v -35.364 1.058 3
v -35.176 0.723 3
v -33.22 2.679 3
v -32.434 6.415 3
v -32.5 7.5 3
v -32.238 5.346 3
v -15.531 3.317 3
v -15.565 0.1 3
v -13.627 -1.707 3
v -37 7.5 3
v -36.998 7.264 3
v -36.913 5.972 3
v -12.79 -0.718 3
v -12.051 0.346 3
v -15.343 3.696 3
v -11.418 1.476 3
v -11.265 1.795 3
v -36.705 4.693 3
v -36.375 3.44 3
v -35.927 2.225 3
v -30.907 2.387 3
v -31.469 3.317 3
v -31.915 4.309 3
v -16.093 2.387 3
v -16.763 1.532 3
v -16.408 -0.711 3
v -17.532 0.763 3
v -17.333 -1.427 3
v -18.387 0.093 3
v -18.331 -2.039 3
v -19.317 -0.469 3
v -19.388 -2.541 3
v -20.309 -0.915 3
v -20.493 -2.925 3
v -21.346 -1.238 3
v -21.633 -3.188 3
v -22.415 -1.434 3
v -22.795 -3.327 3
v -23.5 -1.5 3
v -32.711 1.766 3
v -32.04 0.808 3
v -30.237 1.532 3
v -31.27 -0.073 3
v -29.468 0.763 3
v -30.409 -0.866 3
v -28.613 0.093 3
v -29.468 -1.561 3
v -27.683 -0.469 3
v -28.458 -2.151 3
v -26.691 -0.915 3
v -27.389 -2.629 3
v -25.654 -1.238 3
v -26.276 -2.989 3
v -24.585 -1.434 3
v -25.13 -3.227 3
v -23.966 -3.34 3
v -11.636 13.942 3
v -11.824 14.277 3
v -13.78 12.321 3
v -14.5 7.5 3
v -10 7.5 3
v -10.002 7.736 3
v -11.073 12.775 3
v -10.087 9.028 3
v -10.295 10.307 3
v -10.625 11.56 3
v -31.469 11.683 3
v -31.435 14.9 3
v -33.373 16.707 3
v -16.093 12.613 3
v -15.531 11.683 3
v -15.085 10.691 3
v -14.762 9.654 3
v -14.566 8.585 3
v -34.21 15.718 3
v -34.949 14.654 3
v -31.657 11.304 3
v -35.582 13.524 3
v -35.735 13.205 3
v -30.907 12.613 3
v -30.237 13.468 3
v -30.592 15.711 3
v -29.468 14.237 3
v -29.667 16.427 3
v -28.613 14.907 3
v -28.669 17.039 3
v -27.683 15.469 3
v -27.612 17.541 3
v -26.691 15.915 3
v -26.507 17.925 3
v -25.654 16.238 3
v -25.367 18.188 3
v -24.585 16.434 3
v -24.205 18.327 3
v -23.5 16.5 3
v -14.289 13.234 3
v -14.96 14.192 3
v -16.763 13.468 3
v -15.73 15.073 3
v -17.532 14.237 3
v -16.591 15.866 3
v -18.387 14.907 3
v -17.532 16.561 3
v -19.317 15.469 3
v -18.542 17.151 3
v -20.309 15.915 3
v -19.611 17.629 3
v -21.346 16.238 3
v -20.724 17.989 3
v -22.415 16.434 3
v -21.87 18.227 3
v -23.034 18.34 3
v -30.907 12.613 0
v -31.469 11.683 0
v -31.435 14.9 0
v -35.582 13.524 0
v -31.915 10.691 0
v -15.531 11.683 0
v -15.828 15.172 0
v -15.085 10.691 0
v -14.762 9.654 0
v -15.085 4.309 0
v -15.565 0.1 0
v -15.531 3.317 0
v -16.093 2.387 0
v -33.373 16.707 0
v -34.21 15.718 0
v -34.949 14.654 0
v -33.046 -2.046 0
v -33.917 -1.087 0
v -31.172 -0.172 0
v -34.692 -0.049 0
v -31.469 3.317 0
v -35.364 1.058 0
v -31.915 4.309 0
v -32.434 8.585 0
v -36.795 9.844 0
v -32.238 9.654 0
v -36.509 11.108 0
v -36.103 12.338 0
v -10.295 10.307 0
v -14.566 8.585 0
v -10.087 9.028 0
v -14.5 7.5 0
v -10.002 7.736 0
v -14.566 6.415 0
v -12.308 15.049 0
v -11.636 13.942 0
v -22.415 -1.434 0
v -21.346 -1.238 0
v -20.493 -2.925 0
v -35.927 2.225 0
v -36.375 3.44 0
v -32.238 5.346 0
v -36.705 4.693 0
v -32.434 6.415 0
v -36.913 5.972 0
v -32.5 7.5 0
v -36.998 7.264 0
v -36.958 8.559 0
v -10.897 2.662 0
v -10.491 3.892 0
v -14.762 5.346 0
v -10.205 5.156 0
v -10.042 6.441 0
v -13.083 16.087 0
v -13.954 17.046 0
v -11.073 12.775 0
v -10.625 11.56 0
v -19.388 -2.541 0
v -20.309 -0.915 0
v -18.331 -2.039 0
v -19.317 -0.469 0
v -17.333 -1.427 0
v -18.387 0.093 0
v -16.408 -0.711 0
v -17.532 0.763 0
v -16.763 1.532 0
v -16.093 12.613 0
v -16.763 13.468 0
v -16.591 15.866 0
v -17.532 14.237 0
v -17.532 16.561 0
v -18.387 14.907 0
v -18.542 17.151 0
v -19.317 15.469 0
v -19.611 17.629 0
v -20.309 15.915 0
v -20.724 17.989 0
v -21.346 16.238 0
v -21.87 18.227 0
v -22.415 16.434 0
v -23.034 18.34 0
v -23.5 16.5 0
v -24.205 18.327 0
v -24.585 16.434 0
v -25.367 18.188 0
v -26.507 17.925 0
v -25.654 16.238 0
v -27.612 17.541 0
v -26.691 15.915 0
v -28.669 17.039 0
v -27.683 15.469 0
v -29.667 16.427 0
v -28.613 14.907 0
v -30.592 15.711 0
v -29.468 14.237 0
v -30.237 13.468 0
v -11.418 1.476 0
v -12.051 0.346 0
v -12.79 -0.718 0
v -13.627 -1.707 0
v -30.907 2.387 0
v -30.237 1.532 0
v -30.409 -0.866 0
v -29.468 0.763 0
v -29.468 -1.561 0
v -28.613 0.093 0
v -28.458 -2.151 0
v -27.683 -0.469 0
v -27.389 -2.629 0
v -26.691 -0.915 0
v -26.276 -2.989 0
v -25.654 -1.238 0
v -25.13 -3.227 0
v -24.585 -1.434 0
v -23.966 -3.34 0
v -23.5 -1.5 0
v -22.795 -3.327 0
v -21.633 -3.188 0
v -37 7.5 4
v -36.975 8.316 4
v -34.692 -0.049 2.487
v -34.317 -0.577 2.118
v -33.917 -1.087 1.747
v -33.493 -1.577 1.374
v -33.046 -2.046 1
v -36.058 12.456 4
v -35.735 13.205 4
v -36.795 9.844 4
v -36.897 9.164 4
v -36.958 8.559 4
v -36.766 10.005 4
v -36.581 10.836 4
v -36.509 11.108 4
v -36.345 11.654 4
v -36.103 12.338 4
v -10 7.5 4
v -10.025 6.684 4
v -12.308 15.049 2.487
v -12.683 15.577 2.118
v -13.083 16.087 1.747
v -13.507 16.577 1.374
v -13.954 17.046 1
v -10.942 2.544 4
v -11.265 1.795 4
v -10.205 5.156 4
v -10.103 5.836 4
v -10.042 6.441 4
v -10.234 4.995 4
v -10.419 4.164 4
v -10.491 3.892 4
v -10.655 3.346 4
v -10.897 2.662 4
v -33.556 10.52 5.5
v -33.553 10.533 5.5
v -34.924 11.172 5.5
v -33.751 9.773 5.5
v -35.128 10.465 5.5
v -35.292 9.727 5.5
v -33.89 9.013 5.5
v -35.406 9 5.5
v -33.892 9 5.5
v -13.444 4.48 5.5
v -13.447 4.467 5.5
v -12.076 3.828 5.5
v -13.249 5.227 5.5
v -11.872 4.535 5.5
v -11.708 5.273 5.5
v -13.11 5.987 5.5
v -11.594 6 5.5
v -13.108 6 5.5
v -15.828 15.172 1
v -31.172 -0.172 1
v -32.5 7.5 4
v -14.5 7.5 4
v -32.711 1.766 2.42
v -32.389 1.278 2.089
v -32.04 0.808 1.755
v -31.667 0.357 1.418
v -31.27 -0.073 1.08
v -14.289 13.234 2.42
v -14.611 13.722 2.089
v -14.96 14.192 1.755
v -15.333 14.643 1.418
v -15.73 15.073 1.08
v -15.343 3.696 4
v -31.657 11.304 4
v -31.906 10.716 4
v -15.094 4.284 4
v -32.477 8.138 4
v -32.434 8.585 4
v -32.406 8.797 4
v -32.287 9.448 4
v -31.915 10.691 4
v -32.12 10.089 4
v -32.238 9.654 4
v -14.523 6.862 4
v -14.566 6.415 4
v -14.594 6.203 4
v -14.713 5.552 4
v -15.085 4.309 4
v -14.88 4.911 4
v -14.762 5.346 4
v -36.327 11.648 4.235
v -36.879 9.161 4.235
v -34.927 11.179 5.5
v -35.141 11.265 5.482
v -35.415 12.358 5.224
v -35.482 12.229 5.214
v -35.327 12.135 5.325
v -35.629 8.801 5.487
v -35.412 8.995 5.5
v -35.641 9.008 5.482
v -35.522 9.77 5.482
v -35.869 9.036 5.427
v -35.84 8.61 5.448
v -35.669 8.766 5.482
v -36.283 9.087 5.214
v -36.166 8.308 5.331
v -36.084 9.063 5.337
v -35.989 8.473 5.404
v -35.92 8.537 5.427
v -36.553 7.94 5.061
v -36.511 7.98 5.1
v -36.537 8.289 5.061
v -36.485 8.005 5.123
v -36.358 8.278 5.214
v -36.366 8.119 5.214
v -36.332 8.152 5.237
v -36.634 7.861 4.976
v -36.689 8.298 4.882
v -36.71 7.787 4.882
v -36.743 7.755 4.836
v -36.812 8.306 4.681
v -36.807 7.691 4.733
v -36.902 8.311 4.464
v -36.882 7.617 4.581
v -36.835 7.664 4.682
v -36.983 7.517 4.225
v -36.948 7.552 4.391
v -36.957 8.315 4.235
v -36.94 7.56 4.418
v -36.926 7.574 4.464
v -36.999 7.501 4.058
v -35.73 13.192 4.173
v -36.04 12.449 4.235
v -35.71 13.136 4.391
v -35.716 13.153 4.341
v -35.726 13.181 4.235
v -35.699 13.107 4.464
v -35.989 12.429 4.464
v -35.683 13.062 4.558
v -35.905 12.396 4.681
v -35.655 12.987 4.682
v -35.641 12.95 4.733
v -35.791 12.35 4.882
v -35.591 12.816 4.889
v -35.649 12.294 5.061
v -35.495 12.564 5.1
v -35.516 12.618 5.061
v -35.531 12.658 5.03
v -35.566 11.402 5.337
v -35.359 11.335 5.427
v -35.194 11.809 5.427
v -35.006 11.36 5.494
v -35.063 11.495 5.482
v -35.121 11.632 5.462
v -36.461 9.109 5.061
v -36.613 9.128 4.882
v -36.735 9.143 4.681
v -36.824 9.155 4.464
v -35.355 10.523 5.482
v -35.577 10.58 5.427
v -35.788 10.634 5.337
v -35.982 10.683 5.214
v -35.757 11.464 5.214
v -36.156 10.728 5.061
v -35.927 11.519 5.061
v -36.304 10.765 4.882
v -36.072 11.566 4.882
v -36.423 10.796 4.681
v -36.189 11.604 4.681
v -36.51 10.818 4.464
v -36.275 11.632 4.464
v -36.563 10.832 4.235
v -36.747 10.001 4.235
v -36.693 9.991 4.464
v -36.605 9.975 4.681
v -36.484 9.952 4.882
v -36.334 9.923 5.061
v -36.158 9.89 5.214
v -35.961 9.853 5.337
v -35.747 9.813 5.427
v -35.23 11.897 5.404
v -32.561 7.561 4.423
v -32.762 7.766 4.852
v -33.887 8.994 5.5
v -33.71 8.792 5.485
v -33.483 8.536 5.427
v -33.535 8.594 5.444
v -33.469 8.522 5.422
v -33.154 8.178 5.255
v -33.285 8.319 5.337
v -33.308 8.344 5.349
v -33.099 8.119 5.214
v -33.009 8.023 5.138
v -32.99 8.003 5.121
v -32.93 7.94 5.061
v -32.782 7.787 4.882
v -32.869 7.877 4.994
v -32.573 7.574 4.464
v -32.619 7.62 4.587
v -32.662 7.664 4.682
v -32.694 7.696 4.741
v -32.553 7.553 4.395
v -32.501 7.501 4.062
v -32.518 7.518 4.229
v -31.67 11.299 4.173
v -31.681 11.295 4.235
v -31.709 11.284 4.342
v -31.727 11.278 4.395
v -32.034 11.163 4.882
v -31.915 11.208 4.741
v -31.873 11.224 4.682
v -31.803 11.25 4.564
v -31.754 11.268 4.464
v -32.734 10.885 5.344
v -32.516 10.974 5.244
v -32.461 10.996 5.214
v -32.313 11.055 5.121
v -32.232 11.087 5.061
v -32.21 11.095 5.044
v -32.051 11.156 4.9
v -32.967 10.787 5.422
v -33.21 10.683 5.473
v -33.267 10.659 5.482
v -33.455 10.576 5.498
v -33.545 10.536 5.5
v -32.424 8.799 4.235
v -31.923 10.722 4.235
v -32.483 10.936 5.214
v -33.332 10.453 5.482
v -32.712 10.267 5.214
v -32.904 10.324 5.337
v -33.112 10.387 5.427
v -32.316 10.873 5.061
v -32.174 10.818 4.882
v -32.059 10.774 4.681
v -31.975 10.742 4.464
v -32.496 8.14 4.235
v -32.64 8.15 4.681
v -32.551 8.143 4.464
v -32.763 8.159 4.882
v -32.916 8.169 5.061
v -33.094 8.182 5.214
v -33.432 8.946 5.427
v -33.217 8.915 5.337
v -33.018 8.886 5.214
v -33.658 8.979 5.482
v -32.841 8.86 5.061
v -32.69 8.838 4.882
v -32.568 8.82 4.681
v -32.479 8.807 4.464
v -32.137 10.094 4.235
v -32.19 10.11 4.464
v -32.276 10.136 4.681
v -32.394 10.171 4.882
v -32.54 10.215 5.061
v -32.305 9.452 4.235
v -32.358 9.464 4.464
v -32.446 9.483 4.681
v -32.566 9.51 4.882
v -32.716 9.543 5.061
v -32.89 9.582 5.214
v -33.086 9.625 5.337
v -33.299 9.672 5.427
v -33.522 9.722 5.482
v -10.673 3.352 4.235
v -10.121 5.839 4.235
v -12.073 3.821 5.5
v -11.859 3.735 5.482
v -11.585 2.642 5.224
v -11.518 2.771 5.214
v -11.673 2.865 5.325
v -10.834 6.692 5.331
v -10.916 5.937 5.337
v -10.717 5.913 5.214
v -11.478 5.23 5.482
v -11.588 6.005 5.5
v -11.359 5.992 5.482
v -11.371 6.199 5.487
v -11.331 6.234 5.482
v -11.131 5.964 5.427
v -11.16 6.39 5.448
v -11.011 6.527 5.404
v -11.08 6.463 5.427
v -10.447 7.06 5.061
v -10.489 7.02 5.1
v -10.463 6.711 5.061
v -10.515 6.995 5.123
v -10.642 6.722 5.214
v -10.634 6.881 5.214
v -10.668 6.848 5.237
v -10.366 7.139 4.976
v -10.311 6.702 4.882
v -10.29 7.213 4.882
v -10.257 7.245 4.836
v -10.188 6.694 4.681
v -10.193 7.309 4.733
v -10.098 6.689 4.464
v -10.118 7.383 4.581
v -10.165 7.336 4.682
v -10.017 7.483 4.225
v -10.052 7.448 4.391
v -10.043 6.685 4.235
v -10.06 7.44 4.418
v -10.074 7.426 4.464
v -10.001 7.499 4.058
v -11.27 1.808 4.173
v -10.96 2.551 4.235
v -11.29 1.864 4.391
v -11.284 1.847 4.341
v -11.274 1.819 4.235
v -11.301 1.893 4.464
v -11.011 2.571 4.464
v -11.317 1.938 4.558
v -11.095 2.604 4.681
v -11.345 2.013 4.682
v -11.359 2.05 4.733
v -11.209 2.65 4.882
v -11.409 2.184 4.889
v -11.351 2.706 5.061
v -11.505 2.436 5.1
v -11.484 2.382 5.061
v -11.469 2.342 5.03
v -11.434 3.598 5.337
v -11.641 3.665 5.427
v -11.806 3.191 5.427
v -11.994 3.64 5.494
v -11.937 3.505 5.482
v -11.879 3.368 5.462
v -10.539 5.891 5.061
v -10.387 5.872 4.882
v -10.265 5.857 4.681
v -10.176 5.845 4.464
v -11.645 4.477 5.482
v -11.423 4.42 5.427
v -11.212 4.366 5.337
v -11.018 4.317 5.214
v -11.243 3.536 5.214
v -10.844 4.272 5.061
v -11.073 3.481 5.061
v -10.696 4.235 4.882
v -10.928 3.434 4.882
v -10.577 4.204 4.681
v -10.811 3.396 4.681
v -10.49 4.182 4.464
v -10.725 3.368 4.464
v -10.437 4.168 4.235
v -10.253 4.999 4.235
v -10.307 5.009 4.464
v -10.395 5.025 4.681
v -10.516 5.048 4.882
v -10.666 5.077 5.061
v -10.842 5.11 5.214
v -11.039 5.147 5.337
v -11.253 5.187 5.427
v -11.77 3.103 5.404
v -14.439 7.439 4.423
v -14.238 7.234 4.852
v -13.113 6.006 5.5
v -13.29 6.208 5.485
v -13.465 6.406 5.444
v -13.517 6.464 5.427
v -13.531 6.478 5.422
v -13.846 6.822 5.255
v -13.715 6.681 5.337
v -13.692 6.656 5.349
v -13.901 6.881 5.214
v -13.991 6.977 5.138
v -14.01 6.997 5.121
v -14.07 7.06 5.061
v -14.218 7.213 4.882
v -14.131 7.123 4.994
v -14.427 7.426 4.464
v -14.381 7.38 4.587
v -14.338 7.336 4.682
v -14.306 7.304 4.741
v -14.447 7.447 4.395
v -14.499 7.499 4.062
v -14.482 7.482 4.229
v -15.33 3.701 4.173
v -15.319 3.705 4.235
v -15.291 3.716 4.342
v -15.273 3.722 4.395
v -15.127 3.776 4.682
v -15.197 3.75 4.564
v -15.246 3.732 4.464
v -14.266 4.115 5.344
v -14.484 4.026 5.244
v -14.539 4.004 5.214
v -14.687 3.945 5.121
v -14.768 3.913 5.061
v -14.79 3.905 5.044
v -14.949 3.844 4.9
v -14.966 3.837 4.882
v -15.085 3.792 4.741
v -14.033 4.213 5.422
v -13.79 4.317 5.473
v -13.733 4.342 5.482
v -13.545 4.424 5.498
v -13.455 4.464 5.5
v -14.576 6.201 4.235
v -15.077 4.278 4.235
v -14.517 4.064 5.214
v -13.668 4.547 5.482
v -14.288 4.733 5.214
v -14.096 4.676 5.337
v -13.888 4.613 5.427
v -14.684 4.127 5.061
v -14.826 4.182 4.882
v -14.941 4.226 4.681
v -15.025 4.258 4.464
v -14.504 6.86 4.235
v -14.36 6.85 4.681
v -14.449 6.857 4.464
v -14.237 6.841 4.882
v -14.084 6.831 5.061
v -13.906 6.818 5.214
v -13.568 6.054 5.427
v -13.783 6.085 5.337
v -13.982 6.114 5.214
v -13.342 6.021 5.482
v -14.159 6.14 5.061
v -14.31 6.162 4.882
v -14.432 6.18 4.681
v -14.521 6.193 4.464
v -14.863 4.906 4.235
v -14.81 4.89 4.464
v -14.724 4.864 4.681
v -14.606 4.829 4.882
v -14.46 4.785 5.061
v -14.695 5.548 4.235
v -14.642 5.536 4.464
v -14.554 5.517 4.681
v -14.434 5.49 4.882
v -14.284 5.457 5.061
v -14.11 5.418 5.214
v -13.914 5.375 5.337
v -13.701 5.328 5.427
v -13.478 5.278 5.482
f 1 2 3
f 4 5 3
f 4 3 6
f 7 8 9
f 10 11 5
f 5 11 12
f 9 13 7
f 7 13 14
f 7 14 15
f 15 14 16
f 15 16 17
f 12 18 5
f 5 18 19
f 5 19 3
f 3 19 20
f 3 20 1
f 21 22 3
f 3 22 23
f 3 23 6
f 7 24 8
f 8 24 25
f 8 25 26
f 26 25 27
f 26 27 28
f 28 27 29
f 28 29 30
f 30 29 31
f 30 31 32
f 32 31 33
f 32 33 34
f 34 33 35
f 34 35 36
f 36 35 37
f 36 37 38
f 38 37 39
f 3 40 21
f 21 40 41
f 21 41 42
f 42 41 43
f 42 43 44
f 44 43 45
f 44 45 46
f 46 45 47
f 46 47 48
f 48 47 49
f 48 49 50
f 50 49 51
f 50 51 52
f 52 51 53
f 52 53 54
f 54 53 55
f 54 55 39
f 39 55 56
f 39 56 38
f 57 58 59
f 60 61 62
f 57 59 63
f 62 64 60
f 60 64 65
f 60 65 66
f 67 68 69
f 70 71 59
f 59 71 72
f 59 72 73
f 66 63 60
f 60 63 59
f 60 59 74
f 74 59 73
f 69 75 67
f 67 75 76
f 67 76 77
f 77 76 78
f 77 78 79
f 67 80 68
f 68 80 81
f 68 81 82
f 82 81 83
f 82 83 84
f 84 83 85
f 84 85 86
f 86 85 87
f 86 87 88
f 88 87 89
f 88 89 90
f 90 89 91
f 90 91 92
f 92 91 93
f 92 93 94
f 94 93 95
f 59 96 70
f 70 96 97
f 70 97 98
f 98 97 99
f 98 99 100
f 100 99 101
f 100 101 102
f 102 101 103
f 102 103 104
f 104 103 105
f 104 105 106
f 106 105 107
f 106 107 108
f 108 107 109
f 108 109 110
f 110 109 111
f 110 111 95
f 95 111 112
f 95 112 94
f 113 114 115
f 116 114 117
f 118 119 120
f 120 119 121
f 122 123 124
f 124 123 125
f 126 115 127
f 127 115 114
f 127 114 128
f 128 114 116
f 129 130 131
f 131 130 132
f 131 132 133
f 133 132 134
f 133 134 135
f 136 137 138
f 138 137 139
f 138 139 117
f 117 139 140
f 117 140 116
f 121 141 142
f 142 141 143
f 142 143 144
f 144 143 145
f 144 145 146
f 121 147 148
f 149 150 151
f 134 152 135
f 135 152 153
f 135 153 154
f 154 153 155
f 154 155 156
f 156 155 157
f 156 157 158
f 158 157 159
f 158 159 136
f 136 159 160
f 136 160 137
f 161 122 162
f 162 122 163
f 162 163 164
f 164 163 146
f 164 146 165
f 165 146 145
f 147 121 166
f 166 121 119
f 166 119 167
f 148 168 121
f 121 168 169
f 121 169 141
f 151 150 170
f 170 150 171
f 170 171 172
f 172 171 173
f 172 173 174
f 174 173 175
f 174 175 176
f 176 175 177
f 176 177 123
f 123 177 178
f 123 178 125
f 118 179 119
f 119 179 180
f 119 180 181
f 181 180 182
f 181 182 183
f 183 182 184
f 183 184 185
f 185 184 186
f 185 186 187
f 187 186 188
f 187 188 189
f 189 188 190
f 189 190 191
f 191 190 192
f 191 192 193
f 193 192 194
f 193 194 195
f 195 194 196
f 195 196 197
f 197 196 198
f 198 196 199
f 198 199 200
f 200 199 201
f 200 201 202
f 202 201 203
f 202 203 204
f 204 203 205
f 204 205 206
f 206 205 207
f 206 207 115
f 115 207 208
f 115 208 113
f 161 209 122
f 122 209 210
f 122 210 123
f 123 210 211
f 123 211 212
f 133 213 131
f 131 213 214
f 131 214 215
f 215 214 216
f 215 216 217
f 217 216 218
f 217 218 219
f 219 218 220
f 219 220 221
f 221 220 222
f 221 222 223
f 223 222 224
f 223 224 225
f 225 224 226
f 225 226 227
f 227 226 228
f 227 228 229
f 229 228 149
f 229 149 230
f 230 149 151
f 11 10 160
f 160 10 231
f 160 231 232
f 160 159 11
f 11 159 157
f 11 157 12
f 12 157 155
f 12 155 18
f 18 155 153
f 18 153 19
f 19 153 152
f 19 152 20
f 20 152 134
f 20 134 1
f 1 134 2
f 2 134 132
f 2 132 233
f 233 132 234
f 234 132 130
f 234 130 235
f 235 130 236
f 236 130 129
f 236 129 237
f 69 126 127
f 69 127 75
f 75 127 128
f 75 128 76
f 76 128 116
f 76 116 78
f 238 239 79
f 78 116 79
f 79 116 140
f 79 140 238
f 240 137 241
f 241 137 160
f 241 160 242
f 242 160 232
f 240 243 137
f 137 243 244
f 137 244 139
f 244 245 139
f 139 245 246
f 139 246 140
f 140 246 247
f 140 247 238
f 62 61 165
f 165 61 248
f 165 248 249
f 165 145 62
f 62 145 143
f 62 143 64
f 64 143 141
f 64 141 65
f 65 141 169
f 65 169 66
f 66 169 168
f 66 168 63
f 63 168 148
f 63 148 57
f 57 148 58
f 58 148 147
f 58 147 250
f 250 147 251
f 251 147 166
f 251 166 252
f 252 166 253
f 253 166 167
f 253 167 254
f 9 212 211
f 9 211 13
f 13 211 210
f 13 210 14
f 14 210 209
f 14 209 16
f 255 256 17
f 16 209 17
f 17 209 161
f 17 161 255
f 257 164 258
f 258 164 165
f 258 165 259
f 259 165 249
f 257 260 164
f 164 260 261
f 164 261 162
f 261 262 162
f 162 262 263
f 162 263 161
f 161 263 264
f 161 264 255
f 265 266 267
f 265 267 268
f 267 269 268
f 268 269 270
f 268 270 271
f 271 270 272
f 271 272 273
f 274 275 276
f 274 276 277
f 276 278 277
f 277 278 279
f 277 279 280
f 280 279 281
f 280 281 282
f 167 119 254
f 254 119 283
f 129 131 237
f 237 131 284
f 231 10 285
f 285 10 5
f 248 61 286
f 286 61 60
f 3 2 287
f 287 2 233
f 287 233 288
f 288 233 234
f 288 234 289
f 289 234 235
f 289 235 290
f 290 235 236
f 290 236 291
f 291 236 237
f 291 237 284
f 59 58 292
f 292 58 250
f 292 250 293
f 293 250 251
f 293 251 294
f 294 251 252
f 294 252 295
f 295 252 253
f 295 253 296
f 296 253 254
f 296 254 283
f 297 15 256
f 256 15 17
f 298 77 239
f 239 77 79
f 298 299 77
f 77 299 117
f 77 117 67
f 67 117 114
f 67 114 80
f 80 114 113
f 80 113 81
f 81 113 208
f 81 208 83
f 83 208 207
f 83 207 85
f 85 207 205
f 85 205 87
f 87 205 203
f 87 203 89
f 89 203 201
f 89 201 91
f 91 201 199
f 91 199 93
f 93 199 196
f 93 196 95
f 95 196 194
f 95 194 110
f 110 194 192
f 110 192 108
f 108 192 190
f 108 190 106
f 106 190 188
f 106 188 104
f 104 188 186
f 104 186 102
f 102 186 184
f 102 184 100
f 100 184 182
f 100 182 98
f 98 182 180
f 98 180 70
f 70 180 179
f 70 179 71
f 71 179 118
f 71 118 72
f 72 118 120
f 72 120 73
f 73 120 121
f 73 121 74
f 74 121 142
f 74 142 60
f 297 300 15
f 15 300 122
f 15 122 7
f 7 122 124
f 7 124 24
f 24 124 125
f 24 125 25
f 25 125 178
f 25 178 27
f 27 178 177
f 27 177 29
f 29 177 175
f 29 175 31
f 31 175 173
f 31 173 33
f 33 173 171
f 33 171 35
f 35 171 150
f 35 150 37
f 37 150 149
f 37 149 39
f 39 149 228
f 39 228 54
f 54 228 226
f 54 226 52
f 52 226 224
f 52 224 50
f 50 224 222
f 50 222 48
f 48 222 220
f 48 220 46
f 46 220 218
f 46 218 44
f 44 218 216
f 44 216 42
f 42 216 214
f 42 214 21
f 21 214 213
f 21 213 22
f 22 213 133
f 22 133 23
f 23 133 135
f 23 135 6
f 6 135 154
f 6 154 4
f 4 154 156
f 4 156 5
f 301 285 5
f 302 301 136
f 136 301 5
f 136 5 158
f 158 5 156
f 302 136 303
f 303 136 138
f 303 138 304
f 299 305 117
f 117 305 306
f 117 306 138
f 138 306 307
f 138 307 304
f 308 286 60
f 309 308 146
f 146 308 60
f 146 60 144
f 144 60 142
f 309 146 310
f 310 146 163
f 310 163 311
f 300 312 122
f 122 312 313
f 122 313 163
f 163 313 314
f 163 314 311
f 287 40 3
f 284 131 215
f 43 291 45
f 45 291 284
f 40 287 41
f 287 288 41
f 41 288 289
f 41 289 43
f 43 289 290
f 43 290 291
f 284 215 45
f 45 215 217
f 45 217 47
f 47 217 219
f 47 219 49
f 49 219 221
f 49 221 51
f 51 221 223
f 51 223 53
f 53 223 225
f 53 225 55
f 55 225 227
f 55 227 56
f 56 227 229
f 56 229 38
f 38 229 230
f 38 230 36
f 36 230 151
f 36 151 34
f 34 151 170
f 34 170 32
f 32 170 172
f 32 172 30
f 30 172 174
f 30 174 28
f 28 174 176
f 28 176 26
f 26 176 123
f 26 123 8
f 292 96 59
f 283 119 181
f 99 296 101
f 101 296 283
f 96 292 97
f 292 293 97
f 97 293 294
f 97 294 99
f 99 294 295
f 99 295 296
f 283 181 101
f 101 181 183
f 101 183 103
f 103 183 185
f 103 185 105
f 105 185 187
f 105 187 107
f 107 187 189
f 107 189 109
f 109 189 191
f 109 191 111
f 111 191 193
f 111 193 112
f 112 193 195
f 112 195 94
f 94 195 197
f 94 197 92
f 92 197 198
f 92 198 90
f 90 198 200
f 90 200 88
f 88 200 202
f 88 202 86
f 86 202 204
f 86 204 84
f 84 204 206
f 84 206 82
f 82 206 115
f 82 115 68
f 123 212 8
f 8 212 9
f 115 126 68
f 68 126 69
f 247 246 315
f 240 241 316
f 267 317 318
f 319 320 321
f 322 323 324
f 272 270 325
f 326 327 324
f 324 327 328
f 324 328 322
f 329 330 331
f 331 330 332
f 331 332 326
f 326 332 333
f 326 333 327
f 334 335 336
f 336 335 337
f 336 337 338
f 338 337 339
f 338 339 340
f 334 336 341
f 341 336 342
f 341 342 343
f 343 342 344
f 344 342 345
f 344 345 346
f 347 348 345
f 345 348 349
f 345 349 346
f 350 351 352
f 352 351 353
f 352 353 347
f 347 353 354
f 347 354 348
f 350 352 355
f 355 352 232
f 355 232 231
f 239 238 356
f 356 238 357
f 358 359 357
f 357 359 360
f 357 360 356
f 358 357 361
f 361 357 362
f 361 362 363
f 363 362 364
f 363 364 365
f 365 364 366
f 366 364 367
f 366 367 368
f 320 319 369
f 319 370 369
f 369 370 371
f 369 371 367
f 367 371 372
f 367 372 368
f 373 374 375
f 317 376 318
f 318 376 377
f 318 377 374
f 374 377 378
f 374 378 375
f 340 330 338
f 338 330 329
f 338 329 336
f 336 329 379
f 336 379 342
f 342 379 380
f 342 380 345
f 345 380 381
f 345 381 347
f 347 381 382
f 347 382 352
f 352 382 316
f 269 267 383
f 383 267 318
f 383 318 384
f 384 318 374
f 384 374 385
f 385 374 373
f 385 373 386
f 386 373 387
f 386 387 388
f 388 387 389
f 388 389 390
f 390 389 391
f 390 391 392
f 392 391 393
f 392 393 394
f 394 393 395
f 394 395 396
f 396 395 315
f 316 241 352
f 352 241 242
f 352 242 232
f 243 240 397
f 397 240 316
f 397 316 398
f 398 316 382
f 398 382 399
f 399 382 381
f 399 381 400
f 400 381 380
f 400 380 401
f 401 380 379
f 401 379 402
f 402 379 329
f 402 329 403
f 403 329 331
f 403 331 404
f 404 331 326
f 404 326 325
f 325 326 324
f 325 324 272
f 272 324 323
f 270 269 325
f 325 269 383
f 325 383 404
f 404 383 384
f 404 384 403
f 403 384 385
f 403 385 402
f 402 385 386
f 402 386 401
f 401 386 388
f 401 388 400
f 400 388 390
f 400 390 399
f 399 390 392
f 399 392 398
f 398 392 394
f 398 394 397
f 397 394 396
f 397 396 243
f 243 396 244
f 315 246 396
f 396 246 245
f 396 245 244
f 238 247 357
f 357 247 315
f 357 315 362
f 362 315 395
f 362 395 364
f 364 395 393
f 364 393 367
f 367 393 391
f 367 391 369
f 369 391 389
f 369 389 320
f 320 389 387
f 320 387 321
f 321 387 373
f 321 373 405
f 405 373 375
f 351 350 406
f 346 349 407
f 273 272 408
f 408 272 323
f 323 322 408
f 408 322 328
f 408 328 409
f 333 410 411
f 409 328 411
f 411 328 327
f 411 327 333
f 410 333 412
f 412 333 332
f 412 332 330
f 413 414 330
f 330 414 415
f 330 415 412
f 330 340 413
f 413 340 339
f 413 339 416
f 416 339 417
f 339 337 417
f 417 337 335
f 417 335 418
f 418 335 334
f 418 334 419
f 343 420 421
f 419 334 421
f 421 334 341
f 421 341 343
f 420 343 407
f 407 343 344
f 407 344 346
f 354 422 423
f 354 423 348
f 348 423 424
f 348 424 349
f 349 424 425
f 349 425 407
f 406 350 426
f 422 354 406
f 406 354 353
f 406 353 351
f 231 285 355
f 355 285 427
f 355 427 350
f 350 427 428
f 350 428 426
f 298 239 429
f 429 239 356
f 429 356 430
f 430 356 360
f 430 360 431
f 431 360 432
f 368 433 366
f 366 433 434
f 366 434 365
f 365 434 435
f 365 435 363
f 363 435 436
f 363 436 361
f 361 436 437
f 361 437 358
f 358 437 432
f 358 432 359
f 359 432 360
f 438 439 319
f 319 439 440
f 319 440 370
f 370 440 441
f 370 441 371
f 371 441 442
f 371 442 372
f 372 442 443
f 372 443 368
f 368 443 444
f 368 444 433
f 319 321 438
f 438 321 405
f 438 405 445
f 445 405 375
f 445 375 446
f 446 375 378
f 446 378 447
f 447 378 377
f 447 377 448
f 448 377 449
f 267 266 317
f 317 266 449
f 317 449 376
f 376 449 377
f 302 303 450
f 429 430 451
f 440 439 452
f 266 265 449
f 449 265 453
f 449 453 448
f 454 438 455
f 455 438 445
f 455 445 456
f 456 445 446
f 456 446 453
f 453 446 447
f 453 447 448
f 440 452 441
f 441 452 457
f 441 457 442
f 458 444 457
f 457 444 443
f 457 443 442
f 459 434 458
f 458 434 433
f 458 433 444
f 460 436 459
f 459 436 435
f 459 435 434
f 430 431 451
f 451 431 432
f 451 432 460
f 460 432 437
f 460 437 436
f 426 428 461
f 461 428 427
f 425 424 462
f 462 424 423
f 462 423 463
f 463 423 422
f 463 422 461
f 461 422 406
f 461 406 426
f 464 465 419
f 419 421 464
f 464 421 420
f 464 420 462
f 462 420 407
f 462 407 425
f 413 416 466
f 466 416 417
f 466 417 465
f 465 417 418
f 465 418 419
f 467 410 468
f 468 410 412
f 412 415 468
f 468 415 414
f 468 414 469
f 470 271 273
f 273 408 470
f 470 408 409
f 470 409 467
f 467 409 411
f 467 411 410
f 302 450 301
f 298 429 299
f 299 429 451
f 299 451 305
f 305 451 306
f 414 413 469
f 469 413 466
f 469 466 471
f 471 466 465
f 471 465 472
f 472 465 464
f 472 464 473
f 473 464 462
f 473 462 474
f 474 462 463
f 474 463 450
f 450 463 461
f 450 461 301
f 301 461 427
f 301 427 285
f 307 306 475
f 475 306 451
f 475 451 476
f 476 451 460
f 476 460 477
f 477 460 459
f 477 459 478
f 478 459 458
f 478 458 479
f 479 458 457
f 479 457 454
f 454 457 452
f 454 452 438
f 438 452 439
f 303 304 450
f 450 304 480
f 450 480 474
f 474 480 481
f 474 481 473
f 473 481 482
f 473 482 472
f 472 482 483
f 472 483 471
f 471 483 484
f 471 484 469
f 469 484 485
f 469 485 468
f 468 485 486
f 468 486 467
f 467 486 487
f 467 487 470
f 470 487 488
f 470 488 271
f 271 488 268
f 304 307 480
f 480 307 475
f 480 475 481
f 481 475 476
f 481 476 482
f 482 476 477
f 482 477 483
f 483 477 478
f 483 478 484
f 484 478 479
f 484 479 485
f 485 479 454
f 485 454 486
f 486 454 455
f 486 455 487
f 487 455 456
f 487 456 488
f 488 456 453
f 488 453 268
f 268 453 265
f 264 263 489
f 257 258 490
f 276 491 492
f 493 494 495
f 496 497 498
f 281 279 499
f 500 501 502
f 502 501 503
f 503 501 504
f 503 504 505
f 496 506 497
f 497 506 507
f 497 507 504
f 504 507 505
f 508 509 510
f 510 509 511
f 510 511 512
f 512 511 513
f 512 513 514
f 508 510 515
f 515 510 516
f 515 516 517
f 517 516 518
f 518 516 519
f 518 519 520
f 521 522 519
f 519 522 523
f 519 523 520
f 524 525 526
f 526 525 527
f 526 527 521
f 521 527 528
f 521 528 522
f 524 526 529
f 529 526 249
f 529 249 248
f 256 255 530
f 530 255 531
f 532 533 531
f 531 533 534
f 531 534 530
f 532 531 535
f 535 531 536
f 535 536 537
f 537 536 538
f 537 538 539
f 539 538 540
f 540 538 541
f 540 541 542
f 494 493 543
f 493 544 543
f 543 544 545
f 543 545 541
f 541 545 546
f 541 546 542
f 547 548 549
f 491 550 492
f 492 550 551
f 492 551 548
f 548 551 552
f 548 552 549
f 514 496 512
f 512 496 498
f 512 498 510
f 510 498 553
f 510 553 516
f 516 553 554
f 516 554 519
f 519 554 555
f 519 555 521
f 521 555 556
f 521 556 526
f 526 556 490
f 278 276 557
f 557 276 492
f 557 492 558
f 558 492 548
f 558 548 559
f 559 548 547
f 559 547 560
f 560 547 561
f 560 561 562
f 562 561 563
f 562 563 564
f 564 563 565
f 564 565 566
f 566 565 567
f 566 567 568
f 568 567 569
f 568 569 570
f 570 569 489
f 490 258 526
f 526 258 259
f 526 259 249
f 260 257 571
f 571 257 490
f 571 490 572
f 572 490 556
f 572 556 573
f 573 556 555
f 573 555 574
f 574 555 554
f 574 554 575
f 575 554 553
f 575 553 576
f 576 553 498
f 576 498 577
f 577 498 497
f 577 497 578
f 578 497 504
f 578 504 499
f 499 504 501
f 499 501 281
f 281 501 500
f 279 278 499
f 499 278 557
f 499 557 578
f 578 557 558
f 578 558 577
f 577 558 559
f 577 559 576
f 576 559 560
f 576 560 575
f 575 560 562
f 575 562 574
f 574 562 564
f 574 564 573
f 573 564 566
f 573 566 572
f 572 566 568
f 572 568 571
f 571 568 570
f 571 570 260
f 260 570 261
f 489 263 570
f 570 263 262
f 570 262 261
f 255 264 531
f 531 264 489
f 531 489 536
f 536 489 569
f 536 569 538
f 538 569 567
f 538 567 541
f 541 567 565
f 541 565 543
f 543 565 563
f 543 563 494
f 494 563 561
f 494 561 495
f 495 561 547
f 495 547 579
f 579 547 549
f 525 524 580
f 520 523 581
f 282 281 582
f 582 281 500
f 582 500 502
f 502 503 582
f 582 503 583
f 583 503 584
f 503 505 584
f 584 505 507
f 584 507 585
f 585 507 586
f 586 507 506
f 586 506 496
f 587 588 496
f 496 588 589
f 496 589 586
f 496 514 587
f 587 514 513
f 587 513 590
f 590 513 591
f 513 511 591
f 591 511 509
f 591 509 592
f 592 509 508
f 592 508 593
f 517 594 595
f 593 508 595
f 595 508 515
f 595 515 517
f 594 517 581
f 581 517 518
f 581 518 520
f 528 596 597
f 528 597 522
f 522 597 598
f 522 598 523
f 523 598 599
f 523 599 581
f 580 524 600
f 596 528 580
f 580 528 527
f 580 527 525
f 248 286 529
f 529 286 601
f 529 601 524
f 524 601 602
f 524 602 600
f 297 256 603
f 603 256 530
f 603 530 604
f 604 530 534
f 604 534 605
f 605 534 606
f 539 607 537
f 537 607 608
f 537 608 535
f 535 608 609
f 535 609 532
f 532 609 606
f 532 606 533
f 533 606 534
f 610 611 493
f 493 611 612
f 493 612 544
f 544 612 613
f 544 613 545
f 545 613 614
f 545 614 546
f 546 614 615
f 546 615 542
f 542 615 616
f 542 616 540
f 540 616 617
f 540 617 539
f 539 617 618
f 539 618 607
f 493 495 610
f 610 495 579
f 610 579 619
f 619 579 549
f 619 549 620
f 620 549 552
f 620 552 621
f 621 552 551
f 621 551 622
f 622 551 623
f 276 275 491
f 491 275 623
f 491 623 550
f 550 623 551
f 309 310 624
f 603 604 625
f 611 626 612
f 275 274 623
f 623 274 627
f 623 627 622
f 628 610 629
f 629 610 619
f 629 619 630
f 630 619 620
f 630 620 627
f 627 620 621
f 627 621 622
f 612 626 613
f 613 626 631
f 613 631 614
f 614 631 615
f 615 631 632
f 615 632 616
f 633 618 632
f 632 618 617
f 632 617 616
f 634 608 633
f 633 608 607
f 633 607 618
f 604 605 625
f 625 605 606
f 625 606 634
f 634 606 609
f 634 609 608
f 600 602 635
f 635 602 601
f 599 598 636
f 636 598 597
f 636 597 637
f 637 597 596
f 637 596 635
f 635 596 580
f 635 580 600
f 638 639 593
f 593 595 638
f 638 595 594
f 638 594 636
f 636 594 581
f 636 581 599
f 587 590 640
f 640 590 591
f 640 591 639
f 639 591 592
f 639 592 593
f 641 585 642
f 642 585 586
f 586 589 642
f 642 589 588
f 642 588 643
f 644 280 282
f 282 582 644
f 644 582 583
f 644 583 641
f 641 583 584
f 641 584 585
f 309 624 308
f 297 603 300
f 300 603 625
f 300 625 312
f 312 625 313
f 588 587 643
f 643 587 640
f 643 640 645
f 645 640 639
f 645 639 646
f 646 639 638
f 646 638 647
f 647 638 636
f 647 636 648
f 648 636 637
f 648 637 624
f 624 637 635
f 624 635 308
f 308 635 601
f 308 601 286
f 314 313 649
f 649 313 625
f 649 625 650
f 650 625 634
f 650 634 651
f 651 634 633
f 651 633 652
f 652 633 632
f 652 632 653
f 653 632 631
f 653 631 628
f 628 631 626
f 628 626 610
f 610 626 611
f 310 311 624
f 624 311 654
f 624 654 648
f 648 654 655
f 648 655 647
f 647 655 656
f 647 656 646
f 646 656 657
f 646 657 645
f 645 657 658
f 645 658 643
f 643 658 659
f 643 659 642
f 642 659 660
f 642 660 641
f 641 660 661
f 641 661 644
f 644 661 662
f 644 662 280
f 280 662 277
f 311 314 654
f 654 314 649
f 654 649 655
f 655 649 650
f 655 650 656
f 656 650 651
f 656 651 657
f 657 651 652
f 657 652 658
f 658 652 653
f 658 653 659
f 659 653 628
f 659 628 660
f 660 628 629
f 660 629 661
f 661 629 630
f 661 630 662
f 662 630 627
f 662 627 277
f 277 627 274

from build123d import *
from build123d.topology import SkipClean

# Parameters (mm, degrees)
BOSS_EXTRUDE1_DEPTH     = 3
BOSS_EXTRUDE2_DEPTH     = 2.5
CHAMFER1_SIZE           = 2
CHAMFER1_SIZE2          = 3.464101615
CHAMFER2_SIZE           = 2
CHAMFER2_SIZE2          = 3.464101615
CUT_EXTRUDE1_START      = -2.5
CUT_EXTRUDE1_DEPTH      = 2.5
CUT_EXTRUDE2_DEPTH      = 42.632739521
CUT_EXTRUDE2_DEPTH_BACK = 42.632739521
SKETCH4_R               = 17.222950649
SKETCH4_R_2             = 13.5
CUT_EXTRUDE3_DEPTH      = 42.409207913
CUT_EXTRUDE3_DEPTH_BACK = 42.409207913
FILLET1_R               = 1.5


with BuildPart() as part:
    # Sketch1 → Boss-Extrude1 (new body)
    with BuildSketch(Plane.XY):
        with BuildLine():
            Line((-33.222718241, -2.222718241), (-31.172108576, -0.172108576))
            ThreePointArc((-31.172108576, -0.172108576), (-34.35, 7.5), (-31.172108576, 15.172108576))
            Line((-31.172108576, 15.172108576), (-33.222718241, 17.222718241))
            ThreePointArc((-33.222718241, 17.222718241), (-37.25, 7.5), (-33.222718241, -2.222718241))
        make_face()
        with BuildLine():
            Line((-31.172108576, -0.172108576), (-29.863961031, 1.136038969))
            ThreePointArc((-29.863961031, 1.136038969), (-32.5, 7.5), (-29.863961031, 13.863961031))
            Line((-29.863961031, 13.863961031), (-31.172108576, 15.172108576))
            ThreePointArc((-31.172108576, 15.172108576), (-34.35, 7.5), (-31.172108576, -0.172108576))
        make_face()
        with BuildLine():
            ThreePointArc((-29.863961031, 13.863961031), (-26.944150891, 15.814915793), (-23.5, 16.5))
            Line((-23.5, 16.5), (-23.5, 18.35))
            ThreePointArc((-23.5, 18.35), (-27.652115241, 17.524092928), (-31.172108576, 15.172108576))
            Line((-31.172108576, 15.172108576), (-29.863961031, 13.863961031))
        make_face()
        with BuildLine():
            Line((-23.5, 18.35), (-23.5, 16.5))
            ThreePointArc((-23.5, 16.5), (-20.055849109, 15.814915793), (-17.136038969, 13.863961031))
            Line((-17.136038969, 13.863961031), (-15.827891424, 15.172108576))
            ThreePointArc((-15.827891424, 15.172108576), (-19.347884759, 17.524092928), (-23.5, 18.35))
        make_face()
        with BuildLine():
            Line((-15.827891424, 15.172108576), (-17.136038969, 13.863961031))
            ThreePointArc((-17.136038969, 13.863961031), (-15.185084207, 10.944150891), (-14.5, 7.5))
            ThreePointArc((-14.5, 7.5), (-15.185084207, 4.055849109), (-17.136038969, 1.136038969))
            Line((-17.136038969, 1.136038969), (-15.827891424, -0.172108576))
            ThreePointArc((-15.827891424, -0.172108576), (-13.475907072, 3.347884759), (-12.65, 7.5))
            ThreePointArc((-12.65, 7.5), (-13.475907072, 11.652115241), (-15.827891424, 15.172108576))
        make_face()
        with BuildLine():
            ThreePointArc((-17.136038969, 1.136038969), (-20.055849109, -0.814915793), (-23.5, -1.5))
            Line((-23.5, -1.5), (-23.5, -3.35))
            ThreePointArc((-23.5, -3.35), (-19.347884759, -2.524092928), (-15.827891424, -0.172108576))
            Line((-15.827891424, -0.172108576), (-17.136038969, 1.136038969))
        make_face()
        with BuildLine():
            Line((-23.5, -3.35), (-23.5, -1.5))
            ThreePointArc((-23.5, -1.5), (-26.944150891, -0.814915793), (-29.863961031, 1.136038969))
            Line((-29.863961031, 1.136038969), (-31.172108576, -0.172108576))
            ThreePointArc((-31.172108576, -0.172108576), (-27.652115241, -2.524092928), (-23.5, -3.35))
        make_face()
        with BuildLine():
            Line((-13.777281759, 17.222718241), (-15.827891424, 15.172108576))
            ThreePointArc((-15.827891424, 15.172108576), (-13.475907072, 11.652115241), (-12.65, 7.5))
            ThreePointArc((-12.65, 7.5), (-13.475907072, 3.347884759), (-15.827891424, -0.172108576))
            Line((-15.827891424, -0.172108576), (-13.777281759, -2.222718241))
            ThreePointArc((-13.777281759, -2.222718241), (-10.796656428, 2.238102805), (-9.75, 7.5))
            ThreePointArc((-9.75, 7.5), (-10.796656428, 12.761897195), (-13.777281759, 17.222718241))
        make_face()
    extrude(amount=BOSS_EXTRUDE1_DEPTH)

    # Sketch2 → Boss-Extrude2 (add)
    with BuildSketch(Plane.XY.offset(3)):
        with BuildLine():
            Line((-37.25, 7.5), (-32.5, 7.5))
            ThreePointArc((-32.5, 7.5), (-31.814915793, 10.944150891), (-29.863961031, 13.863961031))
            Line((-29.863961031, 13.863961031), (-31.172108576, 15.172108576))
            Line((-31.172108576, 15.172108576), (-33.222718241, 17.222718241))
            ThreePointArc((-33.222718241, 17.222718241), (-36.203343572, 12.761897195), (-37.25, 7.5))
        make_face()
        with BuildLine():
            Line((-9.75, 7.5), (-14.5, 7.5))
            ThreePointArc((-14.5, 7.5), (-15.185084207, 4.055849109), (-17.136038969, 1.136038969))
            Line((-17.136038969, 1.136038969), (-15.827891424, -0.172108576))
            Line((-15.827891424, -0.172108576), (-13.777281759, -2.222718241))
            ThreePointArc((-13.777281759, -2.222718241), (-10.796656428, 2.238102805), (-9.75, 7.5))
        make_face()
    extrude(amount=BOSS_EXTRUDE2_DEPTH)

    # Chamfer1
    chamfer1_edges = [part.edges().sort_by_distance(p)[0] for p in [
        (-32.197413409, -1.197413409, 3),
    ]]
    chamfer1_side = [part.faces().sort_by_distance(p)[0] for p in [
        (-32.197413409, -1.197413409, 1.5),
    ]]
    chamfer(chamfer1_edges, length=CHAMFER1_SIZE, length2=CHAMFER1_SIZE2, reference=chamfer1_side[0])

    # Chamfer2
    chamfer2_edges = [part.edges().sort_by_distance(p)[0] for p in [
        (-14.802586591, 16.197413409, 3),
    ]]
    chamfer2_side = [part.faces().sort_by_distance(p)[0] for p in [
        (-14.802586591, 16.197413409, 1.5),
    ]]
    chamfer(chamfer2_edges, length=CHAMFER2_SIZE, length2=CHAMFER2_SIZE2, reference=chamfer2_side[0])

    # Sketch3 → Cut-Extrude1 (cut)
    with BuildSketch(Plane.XY.offset(5.5).offset(CUT_EXTRUDE1_START)):
        with BuildLine():
            Line((-11.038267928, 1.688998901), (-15.343229917, 3.696435644))
            ThreePointArc((-15.343229917, 3.696435644), (-16.127631601, 2.337812073), (-17.136038969, 1.136038969))
            Line((-17.136038969, 1.136038969), (-13.777281759, -2.222718241))
            ThreePointArc((-13.777281759, -2.222718241), (-12.236659391, -0.386676), (-11.038267928, 1.688998901))
        make_face()
        with BuildLine():
            Line((-35.961732072, 13.311001099), (-31.656770083, 11.303564356))
            ThreePointArc((-31.656770083, 11.303564356), (-30.872368399, 12.662187927), (-29.863961031, 13.863961031))
            Line((-29.863961031, 13.863961031), (-33.222718241, 17.222718241))
            ThreePointArc((-33.222718241, 17.222718241), (-34.763340609, 15.386676), (-35.961732072, 13.311001099))
        make_face()
    extrude(amount=CUT_EXTRUDE1_DEPTH, mode=Mode.SUBTRACT)

    # Sketch4 → Cut-Extrude2 (cut, two sides: drawn at the far end of the back side and taken through both)
    with BuildSketch(Plane.XY.offset(3).offset(-CUT_EXTRUDE2_DEPTH_BACK)):
        with Locations((-23.5, 7.5)):
            Circle(SKETCH4_R)
        with Locations((-23.5, 7.5)):
            Circle(SKETCH4_R_2, mode=Mode.SUBTRACT)
    extrude(amount=CUT_EXTRUDE2_DEPTH + CUT_EXTRUDE2_DEPTH_BACK, mode=Mode.SUBTRACT)

    # Sketch5 → Cut-Extrude3 (cut, two sides: drawn at the far end of the back side and taken through both)
    with SkipClean():  # the faces are left unmerged after this step: merging them gives an invalid solid
        with BuildSketch(Plane.XY.offset(3).offset(-CUT_EXTRUDE3_DEPTH_BACK)):
            with BuildLine():
                Line((-33.373274972, 16.706977861), (-31.435187663, 14.899682207))
                ThreePointArc((-31.435187663, 14.899682207), (-31.304836834, 15.037043319), (-31.172108576, 15.172108576))
                Line((-31.172108576, 15.172108576), (-33.045941546, 17.045941546))
                ThreePointArc((-33.045941546, 17.045941546), (-33.211087305, 16.877888001), (-33.373274972, 16.706977861))
            make_face()
            with BuildLine():
                Line((-13.626725028, -1.706977861), (-15.564812337, 0.100317793))
                ThreePointArc((-15.564812337, 0.100317793), (-15.695163166, -0.037043319), (-15.827891424, -0.172108576))
                Line((-15.827891424, -0.172108576), (-13.954058454, -2.045941546))
                ThreePointArc((-13.954058454, -2.045941546), (-13.788912695, -1.877888001), (-13.626725028, -1.706977861))
            make_face()
        extrude(amount=CUT_EXTRUDE3_DEPTH + CUT_EXTRUDE3_DEPTH_BACK, mode=Mode.SUBTRACT)

    # Fillet1
    fillet1_edges = [part.edges().sort_by_distance(p)[0] for p in [
        (-13.304037396, 2.745544555, 5.5),
        (-33.695962604, 12.254455445, 5.5),
        (-10.320003904, 4.578065212, 5.5),
        (-36.679996096, 10.421934788, 5.5),
        (-34.75, 7.5, 5.5),
        (-32.286664064, 9.447956525, 5.5),
        (-12.25, 7.5, 5.5),
        (-14.713335936, 5.552043475, 5.5),
    ]]
    fillet(fillet1_edges, radius=FILLET1_R)


solid = part.part
